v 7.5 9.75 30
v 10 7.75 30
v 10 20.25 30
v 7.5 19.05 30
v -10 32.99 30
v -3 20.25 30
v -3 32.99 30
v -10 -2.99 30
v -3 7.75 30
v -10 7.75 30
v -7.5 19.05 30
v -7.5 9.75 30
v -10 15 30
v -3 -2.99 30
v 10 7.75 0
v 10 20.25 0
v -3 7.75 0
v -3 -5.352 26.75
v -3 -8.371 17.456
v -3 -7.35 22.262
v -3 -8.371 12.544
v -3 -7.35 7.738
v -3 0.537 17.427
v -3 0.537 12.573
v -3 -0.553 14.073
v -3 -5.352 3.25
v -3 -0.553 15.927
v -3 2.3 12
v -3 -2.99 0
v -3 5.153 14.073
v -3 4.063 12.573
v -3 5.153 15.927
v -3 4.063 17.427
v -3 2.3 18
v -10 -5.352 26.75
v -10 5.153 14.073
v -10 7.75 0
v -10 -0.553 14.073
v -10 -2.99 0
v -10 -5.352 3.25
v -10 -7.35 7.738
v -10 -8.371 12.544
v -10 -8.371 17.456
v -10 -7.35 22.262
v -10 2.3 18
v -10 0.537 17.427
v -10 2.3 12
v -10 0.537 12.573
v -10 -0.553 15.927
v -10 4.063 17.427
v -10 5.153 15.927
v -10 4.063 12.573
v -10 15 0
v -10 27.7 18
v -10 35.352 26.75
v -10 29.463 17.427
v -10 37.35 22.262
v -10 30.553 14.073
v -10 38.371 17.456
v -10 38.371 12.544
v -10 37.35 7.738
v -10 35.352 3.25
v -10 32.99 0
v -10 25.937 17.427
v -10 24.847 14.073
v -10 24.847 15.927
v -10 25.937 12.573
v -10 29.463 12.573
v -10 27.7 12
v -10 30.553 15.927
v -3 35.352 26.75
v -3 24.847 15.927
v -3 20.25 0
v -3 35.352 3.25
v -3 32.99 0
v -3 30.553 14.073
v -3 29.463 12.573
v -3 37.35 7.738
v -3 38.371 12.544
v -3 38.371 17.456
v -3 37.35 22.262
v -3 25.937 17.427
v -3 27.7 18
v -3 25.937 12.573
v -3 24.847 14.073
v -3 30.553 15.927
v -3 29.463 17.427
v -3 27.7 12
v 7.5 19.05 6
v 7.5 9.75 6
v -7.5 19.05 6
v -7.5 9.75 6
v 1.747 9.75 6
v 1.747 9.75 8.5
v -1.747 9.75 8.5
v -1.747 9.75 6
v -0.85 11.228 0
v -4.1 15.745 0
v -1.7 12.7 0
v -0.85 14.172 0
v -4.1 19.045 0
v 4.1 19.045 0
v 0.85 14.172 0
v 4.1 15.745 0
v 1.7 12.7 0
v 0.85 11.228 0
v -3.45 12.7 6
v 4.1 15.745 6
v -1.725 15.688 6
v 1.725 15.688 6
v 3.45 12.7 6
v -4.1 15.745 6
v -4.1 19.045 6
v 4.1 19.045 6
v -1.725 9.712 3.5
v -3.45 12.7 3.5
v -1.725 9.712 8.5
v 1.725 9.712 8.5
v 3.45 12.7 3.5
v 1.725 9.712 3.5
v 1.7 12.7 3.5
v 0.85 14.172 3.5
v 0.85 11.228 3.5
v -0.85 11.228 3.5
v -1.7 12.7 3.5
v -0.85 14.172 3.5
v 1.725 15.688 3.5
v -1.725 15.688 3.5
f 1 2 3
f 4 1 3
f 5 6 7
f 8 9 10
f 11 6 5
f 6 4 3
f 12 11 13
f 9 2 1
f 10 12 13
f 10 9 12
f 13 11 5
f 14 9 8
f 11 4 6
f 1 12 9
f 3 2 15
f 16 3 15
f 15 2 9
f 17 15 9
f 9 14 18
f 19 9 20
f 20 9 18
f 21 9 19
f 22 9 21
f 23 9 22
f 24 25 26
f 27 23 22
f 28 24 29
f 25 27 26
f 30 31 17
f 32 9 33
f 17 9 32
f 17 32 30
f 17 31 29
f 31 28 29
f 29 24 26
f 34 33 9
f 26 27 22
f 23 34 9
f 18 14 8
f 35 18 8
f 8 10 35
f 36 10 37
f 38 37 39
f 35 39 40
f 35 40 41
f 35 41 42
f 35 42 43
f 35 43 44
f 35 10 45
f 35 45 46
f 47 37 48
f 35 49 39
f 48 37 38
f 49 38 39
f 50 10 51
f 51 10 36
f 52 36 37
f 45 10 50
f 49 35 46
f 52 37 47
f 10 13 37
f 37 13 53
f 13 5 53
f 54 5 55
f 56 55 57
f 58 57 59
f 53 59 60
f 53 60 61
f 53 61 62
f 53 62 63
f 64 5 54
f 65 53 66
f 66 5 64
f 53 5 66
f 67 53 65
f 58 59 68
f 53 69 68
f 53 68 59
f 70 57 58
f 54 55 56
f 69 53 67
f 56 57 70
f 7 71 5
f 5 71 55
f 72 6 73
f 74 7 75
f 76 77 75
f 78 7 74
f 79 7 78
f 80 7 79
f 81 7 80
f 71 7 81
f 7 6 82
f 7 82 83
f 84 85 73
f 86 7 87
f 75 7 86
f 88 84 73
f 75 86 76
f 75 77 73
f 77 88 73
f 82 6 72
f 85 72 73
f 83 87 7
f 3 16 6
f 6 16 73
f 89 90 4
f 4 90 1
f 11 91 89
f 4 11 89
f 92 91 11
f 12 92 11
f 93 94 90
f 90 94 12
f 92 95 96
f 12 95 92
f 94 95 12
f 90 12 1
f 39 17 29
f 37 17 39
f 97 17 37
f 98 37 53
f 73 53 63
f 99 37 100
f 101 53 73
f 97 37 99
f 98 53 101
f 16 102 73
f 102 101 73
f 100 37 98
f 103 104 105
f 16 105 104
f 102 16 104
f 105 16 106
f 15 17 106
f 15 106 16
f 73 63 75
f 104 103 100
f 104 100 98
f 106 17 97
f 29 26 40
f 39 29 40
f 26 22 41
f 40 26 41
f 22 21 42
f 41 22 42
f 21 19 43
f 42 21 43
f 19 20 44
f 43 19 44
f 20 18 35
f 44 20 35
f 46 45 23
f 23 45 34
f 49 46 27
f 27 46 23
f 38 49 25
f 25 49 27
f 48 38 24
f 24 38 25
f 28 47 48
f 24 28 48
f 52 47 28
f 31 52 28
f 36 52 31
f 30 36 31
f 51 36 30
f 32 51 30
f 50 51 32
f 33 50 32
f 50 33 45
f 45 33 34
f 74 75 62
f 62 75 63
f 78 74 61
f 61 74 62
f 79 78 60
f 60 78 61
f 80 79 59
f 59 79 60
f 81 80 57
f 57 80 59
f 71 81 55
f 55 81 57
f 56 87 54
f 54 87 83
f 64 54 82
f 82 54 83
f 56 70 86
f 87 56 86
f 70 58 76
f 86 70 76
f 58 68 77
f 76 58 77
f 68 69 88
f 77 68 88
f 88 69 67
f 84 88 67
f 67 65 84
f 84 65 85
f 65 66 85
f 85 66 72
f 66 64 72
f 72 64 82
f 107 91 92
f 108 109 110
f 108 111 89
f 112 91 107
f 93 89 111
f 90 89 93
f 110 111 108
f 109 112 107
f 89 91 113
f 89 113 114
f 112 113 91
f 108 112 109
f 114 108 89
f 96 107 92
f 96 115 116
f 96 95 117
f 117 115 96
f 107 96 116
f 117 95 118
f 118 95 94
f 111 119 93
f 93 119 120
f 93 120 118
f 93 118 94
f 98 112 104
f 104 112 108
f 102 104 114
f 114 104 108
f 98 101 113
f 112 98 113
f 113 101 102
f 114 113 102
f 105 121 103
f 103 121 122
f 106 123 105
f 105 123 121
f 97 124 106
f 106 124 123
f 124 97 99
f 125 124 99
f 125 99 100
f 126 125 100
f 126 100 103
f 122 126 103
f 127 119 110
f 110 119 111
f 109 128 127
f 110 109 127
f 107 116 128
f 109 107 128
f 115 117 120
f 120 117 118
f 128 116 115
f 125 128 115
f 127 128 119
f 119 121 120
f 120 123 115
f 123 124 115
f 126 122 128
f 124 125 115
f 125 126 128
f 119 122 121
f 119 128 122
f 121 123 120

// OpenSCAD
// Y-belt retainer/tensioner
// May 2012 John Newman

// This parameter deterimes how far the belt is held above the deck
dRise = 0;			// Added to the depth to make the belt run horizontal

// Belt dimensions - These are for T2.5, see below for T5
//tBase = 1.25;		// Thickness of belt base
//tFull = 2.0;			// Thickness of Belt at teeth
//wTooth = 1.4;		// Width of tooth (not actual, req)
//wSpace = 1.1;		// Width of space
//wBelt = 6.2;		// Width of belt

// Belt dimensions - These are for T5
tBase = 1.5;		// Thickness of belt base
tFull = 2.7;			// Thickness of Belt at teeth
wTooth = 2.6;		// Width of tooth (not actual, req)
wSpace = 2.4;		// Width of space
wBelt = 6.2;		// Width of belt

belt_offset_z = 7;
m6_r = 4;
m6_washer_r = 9;
m6_head_h = 6.1;

// Misc params
wHex = 6.9;		// Width of trap for hex nut
dHex	= 2.5;			// Depth of trap for hex nut
rM3 = 1.7;			// Radius of M3 bolt hole
sDrop = wHex/2-0.5; //2.8;		// Driver screw drop from base of slider
Adjust = 0.5;		// Spacing for things to fit inside other things!
pWidth = 9;			// Screw platform width
pHeight = 5;		// Screw platform height

// Base parameters
bwExt = 20;		// Widest part of base
bwInt = 15;			// inside width, where slider goes
blExt = 30;			// Overall length of base
blHed = 6;			// Head of base whch takes the strain !
bdExt = 12.5;		// This included a minimum floor thickness of 2mm (?)
bRoof = 2.2;		// The thickness of the roof which holds the slider in
bFloor = 1;			// The thickness of the floor under the slider (minimum)
bdSoc = bdExt-(bRoof+bFloor);		// 'Socket' depth for slider to go in

// Slider parameters
swMax = bwInt - Adjust;	// Wide part of slider
sdMax = bdSoc-Adjust;		// Height of slider

lBelt = blExt*2;		// Length of a bit of belt!
rMsk = blExt/3 ;		// Radius of part of mount masking...


// Print the parts as req.
translate([0,15,blExt/2]) rotate([0,90,90]) basepart();

module sliderpart() {
	difference() {
		cube([blExt-blHed,swMax,sdMax],center=true);
		// Make a hole for the bolt end
		translate([(blExt-blHed)/2-2,0,(sdMax/2)-sDrop]) rotate([30,0,0]) rotate([0,90,0]) cylinder(10,rM3+0.5,rM3+0.5,$fn=6);
		// Make a fracture to cause fill
		translate([(blExt-blHed)/2-4.2,0,(sdMax-tFull)/2+1]) cube([0.05,swMax-4.4,sdMax],center=true) ;
		// Finally indent for belt
		translate([-lBelt/2,-wBelt/2,-sdMax/2-0.1]) belt();
	}
}

// Note this is positioned so that the slider is centered on the XY plane
module basepart() {
	union() {
		difference() {
			union(){
				translate([0,0,-dRise/2 - 1]) cube([blExt,bwExt,bdExt+dRise],center=true);
				translate([0,15,0])rotate([90,0,0])mount();
			}
			// Remove the space for the slider
			translate([-blHed,0,(bFloor-bRoof)/2]) cube([blExt,bwInt,bdSoc],center=true);
			// Remove a hole for the bolt
			translate([(blExt/2-9),0,bFloor+sDrop-bdExt/2]) rotate([30,0,0]) rotate([0,90,0]) cylinder(15,rM3,rM3);
			// An indentation for the bolt head
			translate([(blExt/2)-(blHed+5-dHex),0,bFloor+sDrop-bdExt/2]) rotate([30,0,0]) rotate([0,90,0]) cylinder(5,wHex/2,wHex/2,$fn=6);
			// A slot for the belt to come through
			translate([blExt/2-blHed,0,(bdExt-tFull-0.61)/2-bRoof]) cube([15,wBelt+2,tFull+0.6],center=true);
		}
	}
}

module mount(){
	z_off = -1 + bdExt + dRise;
	mount_y = bwExt + 3 * m6_washer_r;
	translate([-0.5 * blExt,-0.5 * mount_y, 5]){
		intersection(){
			translate([0.5 * blExt,0.5 * mount_y, 0])cylinder(r=mount_y / 2, h = belt_offset_z);
			difference(){
				cube([blExt,mount_y,belt_offset_z]);		
				translate([blExt * 0.5,0,-0.5 * belt_offset_z]){
					translate([0,m6_washer_r * 1.2,0])cylinder(r=3, h = 2 * belt_offset_z);
					translate([0,mount_y - m6_washer_r * 1.20,0])cylinder(r=3, h = 2 * belt_offset_z);
				}
			}
		}
	}
	
}

module belt() {
	cube([lBelt,wBelt,tBase]) ;
	for (inc = [0:(wTooth+wSpace):lBelt-wTooth]) translate([inc,0,tBase-0.01]) cube([wTooth,wBelt,(tFull-tBase)]) ;
}
